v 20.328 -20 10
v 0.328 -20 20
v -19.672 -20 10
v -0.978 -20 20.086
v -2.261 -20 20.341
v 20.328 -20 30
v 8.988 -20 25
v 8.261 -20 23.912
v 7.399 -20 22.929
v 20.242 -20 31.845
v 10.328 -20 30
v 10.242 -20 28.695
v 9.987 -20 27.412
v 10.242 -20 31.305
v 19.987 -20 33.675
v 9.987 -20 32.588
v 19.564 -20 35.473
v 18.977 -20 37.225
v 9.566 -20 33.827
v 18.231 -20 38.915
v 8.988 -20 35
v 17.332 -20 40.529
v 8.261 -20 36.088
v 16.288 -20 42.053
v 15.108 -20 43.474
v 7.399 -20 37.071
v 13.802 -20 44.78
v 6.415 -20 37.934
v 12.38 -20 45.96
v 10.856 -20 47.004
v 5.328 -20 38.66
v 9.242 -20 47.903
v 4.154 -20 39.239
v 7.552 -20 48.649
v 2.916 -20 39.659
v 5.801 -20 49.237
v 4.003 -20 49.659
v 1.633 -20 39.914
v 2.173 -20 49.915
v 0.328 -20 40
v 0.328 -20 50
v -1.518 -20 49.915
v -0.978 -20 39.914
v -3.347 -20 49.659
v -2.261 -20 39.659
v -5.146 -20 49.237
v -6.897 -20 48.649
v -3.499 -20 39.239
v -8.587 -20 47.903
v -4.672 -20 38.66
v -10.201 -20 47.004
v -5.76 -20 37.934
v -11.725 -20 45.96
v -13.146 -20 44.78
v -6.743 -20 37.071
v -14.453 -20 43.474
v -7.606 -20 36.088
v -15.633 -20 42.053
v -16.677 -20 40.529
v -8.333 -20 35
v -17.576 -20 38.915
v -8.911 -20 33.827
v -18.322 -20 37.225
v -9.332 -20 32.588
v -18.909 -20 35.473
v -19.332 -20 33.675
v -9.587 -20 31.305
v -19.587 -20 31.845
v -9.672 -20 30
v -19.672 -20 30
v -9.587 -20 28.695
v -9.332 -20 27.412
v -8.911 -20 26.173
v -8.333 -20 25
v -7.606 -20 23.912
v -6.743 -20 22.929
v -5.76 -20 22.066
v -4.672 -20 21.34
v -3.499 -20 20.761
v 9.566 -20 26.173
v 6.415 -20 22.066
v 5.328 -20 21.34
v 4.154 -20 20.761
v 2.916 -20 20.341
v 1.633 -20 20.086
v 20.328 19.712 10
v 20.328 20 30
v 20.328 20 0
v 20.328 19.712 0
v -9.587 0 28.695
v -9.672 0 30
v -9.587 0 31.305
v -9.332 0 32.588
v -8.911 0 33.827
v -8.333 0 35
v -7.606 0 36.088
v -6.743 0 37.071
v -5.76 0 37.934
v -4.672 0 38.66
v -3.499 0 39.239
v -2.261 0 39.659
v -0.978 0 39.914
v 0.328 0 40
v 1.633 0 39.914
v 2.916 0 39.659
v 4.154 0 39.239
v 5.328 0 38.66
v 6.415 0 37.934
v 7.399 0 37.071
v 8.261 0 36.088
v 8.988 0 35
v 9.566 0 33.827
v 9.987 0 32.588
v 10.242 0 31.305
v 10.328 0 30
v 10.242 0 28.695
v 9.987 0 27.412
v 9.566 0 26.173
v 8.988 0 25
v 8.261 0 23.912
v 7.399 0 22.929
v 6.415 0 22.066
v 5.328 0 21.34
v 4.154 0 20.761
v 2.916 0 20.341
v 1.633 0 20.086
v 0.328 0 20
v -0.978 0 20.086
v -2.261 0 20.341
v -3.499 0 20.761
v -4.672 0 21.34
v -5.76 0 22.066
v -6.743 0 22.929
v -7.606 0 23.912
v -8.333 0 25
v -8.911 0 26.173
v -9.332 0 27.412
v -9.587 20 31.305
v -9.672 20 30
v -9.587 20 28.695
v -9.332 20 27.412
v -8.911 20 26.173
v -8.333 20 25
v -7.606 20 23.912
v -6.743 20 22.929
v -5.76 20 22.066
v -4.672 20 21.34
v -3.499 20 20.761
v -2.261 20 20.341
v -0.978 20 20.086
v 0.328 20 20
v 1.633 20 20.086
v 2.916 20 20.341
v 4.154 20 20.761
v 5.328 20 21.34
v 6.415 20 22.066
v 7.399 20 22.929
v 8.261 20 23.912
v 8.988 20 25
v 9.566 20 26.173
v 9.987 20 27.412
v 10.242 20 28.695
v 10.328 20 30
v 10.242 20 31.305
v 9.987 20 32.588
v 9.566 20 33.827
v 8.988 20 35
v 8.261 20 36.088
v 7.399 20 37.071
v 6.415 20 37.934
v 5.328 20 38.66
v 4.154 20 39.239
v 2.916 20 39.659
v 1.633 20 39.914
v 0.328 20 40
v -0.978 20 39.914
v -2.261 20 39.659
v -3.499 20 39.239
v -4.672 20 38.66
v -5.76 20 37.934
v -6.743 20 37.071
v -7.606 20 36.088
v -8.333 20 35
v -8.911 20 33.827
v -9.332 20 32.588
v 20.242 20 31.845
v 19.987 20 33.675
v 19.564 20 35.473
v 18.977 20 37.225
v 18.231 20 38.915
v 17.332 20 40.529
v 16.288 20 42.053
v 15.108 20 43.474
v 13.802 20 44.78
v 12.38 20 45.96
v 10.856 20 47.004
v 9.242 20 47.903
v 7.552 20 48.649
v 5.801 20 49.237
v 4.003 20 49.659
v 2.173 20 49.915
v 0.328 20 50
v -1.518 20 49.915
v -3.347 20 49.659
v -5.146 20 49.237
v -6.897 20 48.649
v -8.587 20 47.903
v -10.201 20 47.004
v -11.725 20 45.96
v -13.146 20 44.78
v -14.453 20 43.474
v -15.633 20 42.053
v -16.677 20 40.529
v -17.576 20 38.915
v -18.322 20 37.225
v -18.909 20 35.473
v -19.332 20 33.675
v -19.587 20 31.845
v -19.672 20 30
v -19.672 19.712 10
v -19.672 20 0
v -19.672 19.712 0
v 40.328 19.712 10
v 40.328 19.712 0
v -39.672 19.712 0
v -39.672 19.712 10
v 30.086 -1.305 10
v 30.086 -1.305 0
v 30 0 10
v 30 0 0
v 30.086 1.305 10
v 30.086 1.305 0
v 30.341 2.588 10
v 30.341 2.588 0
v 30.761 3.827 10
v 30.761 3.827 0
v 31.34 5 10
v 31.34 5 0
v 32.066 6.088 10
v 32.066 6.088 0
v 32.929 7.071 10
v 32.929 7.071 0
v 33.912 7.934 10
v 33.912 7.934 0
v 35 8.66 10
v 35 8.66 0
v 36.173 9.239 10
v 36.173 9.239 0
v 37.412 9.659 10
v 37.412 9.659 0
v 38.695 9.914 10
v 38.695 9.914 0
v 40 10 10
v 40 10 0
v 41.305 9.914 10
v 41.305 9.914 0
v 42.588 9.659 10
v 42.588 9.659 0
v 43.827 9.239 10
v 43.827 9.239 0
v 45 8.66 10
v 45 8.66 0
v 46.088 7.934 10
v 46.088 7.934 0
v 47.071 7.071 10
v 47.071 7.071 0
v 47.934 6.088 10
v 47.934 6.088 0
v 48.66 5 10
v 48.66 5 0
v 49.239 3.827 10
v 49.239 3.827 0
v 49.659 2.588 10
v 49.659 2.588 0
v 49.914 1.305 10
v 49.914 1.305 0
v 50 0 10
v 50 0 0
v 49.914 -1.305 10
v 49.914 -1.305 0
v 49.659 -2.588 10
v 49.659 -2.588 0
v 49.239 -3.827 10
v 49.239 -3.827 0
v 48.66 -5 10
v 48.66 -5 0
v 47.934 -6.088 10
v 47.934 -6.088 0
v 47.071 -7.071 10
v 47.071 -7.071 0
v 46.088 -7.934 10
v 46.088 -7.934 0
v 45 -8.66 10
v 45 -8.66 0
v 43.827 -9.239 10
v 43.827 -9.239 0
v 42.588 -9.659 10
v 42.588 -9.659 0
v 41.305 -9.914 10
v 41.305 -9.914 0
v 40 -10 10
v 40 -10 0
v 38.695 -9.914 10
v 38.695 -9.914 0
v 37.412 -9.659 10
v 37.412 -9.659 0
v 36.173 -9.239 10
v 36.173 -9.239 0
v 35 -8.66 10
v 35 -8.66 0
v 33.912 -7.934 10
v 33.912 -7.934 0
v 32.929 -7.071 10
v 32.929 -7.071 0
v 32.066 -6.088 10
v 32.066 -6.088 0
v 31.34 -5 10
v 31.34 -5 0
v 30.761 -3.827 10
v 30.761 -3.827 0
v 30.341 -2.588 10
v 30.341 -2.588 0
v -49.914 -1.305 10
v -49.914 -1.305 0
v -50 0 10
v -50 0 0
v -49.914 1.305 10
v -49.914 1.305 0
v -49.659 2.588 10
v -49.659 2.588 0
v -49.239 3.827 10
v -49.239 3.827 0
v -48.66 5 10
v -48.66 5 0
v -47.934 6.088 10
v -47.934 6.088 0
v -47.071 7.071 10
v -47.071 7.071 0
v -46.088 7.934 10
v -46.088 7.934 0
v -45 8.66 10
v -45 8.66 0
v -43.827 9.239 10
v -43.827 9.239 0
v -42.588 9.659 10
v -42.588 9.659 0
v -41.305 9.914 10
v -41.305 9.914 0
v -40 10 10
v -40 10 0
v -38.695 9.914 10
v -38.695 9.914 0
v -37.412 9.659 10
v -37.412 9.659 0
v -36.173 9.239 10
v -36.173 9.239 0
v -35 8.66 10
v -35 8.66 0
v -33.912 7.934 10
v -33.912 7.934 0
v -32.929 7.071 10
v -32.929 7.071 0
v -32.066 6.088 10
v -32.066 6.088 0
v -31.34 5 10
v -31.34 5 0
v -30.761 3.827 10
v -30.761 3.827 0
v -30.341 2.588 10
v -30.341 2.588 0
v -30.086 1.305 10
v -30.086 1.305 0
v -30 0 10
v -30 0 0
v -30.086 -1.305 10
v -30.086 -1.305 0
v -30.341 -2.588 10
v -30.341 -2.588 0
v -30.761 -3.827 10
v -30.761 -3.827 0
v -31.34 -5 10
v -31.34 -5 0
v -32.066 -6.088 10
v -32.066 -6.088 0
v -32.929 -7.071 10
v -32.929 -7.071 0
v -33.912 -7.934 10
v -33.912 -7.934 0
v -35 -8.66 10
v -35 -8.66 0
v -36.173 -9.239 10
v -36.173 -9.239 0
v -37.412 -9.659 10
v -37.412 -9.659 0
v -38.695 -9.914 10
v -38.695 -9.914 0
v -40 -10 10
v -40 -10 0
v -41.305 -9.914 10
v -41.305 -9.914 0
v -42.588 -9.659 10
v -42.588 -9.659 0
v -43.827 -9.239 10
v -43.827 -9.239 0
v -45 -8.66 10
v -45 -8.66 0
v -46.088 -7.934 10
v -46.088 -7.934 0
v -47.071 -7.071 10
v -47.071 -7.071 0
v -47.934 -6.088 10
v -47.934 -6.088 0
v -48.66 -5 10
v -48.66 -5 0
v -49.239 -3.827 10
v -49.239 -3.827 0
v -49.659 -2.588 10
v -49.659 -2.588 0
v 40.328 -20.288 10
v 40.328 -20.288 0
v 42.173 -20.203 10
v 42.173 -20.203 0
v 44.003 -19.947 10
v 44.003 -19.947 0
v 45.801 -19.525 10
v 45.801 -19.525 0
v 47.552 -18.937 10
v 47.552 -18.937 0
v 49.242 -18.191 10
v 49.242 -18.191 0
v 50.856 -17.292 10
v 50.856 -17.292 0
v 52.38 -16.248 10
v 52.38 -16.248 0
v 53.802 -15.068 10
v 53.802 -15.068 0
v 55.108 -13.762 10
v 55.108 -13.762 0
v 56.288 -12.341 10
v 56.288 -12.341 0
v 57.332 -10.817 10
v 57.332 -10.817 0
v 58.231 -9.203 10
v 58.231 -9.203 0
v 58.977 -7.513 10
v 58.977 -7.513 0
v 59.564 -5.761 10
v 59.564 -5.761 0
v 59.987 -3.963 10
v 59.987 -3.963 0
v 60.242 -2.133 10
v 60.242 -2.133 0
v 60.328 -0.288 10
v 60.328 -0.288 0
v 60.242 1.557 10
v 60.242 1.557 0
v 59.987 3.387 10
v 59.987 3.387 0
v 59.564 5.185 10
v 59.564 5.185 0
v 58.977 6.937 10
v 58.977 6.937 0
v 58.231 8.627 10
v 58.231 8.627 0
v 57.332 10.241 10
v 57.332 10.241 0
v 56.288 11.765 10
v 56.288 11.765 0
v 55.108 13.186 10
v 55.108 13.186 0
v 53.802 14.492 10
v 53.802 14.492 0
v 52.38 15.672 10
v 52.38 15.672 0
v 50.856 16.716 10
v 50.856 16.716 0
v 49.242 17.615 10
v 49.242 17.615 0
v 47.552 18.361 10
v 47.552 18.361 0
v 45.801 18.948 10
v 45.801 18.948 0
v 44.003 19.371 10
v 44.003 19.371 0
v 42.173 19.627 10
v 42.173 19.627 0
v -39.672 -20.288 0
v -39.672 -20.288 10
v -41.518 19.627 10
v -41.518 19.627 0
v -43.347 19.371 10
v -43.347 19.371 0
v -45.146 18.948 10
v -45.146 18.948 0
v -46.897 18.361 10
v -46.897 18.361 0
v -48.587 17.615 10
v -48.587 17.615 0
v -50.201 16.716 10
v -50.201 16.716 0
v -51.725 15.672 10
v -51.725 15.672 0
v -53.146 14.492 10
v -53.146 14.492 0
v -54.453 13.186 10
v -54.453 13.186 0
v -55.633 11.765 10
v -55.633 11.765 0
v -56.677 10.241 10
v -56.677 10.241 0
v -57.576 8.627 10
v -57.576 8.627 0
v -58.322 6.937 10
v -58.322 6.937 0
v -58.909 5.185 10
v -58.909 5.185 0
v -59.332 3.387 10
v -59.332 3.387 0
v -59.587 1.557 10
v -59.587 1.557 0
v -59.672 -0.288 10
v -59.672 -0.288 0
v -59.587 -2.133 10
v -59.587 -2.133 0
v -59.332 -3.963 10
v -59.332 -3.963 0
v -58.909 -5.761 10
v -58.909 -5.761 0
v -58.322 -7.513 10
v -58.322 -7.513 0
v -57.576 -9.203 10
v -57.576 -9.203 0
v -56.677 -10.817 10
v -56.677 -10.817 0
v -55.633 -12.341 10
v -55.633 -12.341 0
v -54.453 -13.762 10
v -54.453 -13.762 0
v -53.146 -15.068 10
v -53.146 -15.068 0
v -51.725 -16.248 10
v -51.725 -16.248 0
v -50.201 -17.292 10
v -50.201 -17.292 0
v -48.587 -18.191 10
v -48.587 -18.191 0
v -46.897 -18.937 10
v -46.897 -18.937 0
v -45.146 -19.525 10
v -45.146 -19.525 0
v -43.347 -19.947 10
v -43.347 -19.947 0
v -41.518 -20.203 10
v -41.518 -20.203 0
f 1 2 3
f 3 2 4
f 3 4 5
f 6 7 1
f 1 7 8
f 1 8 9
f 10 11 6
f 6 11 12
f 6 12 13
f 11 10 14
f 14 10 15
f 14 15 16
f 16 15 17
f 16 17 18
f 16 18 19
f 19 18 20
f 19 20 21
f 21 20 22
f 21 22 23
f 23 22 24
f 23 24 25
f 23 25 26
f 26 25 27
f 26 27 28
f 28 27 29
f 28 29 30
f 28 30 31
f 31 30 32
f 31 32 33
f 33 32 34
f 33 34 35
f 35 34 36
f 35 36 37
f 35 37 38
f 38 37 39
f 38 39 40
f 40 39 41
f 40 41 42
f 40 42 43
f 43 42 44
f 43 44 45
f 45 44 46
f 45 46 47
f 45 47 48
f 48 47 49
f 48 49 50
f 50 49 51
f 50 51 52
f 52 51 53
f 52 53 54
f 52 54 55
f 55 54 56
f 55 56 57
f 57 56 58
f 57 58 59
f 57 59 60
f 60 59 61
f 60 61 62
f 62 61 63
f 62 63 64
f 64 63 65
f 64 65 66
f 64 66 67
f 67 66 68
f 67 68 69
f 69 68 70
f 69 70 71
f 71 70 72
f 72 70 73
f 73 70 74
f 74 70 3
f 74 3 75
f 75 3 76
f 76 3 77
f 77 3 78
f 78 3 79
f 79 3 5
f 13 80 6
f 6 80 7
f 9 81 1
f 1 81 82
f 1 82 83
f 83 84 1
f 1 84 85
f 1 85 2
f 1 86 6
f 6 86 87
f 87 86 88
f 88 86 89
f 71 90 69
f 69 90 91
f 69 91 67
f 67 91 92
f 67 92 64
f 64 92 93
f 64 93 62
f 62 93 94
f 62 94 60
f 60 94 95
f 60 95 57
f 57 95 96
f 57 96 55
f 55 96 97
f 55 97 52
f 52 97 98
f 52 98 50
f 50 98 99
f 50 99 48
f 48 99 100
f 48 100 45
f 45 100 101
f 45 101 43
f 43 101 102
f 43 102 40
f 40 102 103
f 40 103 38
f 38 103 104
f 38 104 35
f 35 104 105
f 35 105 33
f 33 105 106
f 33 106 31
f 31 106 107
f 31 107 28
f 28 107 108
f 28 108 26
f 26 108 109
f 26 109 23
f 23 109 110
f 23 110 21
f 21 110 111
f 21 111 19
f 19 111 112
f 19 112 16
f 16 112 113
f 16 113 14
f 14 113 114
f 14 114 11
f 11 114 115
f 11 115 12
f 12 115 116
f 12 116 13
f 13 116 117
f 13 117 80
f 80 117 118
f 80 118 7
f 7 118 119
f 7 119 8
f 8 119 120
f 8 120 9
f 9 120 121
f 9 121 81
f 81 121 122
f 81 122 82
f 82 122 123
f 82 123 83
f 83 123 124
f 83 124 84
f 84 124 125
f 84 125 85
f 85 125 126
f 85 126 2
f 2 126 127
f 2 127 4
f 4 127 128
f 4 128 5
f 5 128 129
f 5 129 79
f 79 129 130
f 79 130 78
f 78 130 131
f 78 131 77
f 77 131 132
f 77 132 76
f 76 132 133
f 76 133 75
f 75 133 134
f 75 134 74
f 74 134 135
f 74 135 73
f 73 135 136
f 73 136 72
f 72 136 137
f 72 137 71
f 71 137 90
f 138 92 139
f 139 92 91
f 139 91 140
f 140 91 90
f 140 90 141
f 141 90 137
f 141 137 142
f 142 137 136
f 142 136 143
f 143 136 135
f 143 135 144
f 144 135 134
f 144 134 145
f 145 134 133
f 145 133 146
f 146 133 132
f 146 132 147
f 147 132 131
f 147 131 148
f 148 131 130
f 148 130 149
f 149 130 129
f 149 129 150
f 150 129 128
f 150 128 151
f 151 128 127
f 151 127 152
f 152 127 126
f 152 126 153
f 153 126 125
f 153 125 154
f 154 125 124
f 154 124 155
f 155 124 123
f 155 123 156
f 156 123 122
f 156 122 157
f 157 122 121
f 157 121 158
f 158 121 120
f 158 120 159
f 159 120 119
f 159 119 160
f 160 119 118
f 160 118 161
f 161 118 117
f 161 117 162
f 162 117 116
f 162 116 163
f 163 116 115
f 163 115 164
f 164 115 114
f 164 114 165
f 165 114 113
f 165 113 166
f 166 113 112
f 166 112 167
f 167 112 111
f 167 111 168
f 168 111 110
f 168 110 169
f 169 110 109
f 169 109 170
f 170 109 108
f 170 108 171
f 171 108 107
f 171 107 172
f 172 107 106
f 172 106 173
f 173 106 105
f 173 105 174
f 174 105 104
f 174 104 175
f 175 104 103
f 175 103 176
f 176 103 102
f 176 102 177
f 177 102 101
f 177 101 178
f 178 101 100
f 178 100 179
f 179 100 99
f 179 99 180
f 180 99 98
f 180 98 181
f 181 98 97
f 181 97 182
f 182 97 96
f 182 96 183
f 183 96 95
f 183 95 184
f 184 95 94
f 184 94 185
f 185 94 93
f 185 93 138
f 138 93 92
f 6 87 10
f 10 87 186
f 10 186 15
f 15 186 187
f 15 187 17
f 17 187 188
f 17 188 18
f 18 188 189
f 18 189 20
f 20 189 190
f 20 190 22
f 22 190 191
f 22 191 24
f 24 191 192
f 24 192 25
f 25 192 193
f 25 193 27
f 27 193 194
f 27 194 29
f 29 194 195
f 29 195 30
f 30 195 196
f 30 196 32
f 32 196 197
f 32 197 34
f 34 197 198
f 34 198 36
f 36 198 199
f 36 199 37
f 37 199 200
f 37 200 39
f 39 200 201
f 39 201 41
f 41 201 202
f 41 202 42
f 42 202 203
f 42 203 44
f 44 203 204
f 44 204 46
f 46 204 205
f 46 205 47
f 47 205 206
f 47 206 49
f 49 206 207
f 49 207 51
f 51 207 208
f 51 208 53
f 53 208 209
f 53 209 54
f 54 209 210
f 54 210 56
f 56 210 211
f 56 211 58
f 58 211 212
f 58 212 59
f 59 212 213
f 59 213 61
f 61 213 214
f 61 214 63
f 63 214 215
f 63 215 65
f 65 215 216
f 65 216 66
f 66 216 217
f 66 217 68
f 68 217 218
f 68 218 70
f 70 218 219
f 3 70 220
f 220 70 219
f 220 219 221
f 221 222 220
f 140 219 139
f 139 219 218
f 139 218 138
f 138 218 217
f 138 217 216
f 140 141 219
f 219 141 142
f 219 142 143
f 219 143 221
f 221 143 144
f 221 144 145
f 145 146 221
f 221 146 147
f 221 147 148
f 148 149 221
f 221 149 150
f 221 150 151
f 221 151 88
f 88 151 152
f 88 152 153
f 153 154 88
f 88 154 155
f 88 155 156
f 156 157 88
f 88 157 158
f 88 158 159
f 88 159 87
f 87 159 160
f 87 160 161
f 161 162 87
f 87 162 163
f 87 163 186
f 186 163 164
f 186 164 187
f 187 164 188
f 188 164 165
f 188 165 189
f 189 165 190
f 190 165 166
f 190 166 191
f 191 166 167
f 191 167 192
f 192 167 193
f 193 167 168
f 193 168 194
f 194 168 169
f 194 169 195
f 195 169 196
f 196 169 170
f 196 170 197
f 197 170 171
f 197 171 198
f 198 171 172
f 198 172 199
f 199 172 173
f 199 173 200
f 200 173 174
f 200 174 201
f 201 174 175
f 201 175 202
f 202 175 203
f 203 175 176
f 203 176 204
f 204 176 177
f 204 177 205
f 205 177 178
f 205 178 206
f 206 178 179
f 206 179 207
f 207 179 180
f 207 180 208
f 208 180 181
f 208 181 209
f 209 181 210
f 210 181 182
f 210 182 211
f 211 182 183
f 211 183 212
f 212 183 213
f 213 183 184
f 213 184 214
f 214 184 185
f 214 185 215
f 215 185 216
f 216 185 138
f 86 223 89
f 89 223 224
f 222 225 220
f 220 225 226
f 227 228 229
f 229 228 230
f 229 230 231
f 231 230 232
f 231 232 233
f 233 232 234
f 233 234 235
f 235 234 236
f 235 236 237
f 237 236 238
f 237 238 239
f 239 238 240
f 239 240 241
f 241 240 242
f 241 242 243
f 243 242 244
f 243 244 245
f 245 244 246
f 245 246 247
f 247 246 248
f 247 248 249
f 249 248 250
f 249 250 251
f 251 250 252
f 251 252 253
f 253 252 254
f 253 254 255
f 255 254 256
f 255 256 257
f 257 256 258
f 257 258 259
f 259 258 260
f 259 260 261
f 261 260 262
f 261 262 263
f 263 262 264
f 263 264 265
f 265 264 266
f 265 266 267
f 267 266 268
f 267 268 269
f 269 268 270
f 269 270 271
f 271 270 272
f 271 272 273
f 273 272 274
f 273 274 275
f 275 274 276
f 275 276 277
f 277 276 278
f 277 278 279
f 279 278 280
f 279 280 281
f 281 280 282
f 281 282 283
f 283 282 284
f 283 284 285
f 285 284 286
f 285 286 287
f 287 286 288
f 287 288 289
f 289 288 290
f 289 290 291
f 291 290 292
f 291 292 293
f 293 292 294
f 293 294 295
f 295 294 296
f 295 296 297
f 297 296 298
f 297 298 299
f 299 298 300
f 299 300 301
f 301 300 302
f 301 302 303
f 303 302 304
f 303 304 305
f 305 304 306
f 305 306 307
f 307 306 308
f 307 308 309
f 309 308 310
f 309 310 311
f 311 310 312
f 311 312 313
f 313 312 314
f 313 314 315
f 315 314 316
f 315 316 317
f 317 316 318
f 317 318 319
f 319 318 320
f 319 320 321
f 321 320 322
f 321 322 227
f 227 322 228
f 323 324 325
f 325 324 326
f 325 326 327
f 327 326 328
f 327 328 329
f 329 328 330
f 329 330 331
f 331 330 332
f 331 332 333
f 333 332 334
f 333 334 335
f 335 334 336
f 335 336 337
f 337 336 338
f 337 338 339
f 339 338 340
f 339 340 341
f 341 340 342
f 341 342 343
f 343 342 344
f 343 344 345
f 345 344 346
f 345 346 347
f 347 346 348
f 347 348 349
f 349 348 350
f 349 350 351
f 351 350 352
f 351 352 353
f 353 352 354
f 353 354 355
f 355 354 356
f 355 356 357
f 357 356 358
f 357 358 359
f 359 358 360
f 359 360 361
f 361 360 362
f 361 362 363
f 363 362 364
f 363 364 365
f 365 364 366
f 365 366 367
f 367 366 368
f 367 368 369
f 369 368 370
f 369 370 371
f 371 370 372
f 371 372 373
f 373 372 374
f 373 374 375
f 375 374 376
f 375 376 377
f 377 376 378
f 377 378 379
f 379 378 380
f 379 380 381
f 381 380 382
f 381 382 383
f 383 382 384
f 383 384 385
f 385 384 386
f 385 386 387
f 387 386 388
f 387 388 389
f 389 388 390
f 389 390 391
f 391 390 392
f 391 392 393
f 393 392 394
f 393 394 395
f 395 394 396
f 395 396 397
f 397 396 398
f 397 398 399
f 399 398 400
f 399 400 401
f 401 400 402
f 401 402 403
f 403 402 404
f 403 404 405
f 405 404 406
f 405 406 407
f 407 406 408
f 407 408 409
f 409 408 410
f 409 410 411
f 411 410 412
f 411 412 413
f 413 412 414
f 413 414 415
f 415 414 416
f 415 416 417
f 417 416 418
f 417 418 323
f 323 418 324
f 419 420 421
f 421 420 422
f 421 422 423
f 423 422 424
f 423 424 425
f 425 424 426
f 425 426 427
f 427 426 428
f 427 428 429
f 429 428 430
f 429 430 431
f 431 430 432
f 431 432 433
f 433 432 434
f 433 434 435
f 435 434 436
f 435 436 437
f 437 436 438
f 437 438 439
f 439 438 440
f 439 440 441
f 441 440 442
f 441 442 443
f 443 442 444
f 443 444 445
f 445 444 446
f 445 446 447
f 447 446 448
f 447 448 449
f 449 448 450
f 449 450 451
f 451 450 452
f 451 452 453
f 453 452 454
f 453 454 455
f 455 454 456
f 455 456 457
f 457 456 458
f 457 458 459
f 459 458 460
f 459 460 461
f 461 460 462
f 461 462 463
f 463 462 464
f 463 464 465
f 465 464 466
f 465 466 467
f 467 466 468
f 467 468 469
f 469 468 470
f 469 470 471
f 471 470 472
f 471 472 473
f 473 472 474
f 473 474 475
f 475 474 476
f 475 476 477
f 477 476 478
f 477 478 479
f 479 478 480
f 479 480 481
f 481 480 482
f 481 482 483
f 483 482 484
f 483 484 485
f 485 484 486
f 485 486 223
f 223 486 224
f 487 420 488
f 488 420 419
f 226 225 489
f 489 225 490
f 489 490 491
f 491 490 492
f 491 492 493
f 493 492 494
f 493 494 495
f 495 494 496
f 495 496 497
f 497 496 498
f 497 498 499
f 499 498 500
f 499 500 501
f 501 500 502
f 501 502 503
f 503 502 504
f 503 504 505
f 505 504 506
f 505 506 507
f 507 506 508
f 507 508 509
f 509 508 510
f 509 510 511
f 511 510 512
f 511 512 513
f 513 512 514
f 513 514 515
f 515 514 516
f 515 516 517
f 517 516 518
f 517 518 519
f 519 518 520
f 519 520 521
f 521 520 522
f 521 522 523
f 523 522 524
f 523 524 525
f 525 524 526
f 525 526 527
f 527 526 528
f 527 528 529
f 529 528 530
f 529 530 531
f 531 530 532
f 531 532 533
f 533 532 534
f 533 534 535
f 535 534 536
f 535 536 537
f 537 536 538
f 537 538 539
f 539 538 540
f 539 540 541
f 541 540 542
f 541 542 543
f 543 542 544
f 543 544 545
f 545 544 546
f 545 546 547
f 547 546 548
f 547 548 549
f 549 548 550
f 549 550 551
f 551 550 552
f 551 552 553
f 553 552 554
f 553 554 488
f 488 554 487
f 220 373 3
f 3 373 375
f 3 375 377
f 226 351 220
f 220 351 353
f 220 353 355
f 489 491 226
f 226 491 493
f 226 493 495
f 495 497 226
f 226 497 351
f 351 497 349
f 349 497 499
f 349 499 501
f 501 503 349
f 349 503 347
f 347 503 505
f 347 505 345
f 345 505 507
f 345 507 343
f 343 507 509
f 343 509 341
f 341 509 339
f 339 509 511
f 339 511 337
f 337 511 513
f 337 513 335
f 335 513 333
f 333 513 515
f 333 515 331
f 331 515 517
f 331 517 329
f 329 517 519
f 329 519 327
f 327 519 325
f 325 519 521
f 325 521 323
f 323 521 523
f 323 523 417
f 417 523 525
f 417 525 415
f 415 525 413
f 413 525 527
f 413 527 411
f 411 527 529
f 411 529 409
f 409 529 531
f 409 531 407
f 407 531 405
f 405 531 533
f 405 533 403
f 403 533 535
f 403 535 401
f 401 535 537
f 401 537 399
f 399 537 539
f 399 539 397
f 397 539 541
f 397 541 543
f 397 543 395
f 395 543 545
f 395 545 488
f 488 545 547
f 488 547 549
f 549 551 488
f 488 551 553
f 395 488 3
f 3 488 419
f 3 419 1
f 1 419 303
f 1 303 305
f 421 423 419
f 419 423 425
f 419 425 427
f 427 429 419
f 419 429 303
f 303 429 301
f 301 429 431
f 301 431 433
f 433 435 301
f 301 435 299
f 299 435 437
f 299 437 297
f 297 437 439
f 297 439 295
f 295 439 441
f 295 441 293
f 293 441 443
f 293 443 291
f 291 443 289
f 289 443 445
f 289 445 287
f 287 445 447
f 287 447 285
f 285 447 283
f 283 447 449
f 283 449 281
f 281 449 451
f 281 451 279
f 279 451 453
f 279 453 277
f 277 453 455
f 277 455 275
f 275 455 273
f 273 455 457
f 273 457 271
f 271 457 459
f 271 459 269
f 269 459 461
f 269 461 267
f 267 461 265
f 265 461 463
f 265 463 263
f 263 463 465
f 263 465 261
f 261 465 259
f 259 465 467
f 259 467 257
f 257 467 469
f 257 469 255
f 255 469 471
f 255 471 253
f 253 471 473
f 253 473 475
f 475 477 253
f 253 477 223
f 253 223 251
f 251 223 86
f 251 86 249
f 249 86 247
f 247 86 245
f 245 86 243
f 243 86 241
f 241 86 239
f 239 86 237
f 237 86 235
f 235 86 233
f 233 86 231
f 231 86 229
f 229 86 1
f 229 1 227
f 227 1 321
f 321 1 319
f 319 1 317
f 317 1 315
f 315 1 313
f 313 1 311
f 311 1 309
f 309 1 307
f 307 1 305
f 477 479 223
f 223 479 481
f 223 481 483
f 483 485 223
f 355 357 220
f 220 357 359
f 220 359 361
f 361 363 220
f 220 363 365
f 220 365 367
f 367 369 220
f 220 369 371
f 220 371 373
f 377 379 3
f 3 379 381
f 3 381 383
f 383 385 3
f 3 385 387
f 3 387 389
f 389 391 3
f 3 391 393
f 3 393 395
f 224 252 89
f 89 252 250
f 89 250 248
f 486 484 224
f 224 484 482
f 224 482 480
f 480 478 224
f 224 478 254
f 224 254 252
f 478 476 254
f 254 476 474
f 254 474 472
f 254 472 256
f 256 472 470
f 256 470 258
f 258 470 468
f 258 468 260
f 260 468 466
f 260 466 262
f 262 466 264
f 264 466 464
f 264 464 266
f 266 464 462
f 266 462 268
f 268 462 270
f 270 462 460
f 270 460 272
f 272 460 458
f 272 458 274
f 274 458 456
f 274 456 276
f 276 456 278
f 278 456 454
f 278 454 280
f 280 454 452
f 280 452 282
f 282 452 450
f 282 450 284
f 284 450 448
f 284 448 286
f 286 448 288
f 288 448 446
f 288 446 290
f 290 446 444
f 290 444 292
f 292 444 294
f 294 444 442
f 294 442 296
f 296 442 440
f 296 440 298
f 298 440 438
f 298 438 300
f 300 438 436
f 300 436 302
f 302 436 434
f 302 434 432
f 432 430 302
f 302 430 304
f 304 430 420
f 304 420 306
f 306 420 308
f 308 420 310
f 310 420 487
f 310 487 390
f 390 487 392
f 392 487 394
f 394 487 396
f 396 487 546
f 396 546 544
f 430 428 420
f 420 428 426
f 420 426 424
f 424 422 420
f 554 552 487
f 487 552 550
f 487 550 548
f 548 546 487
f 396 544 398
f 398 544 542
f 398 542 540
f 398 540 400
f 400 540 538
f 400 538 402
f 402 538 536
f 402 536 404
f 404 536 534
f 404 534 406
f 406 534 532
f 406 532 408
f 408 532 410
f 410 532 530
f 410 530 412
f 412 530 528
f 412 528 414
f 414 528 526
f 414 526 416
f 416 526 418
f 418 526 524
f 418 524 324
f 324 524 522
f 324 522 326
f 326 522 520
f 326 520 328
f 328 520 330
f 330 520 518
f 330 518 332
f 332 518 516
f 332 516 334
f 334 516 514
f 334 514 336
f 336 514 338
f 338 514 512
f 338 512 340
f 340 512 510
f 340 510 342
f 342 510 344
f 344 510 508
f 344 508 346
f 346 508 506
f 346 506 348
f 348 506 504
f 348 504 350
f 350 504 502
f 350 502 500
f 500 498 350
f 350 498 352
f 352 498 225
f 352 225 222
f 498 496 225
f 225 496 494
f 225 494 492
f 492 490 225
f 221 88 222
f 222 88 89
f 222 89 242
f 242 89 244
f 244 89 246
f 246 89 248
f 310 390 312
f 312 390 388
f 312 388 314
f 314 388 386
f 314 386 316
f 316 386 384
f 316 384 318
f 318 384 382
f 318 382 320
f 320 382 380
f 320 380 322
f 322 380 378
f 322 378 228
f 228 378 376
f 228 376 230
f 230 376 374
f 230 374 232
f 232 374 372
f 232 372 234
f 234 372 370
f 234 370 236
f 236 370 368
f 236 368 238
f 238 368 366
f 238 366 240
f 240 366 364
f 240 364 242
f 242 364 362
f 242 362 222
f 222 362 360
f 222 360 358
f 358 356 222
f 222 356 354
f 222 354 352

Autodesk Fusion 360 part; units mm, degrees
sketch "Sketch1" plane through (0, 0, 0) normal (0, 0, 1) x (1, 0, 0)
  line L0 (40.3277, 19.712) -> (-39.6723, 19.712)
  line L1 (-39.6723, 19.712) -> (-39.6723, -20.288)
  line L2 (-39.6723, -20.288) -> (40.3277, -20.288)
  line L3 (40.3277, -20.288) -> (40.3277, 19.712)
  line L4 (-39.6723, -0.288) -> (40.3277, -0.288) construction
  circle A0 centre (40, 0) radius 10
  circle A1 centre (-40, 0) radius 10
  line L5 (-24, 12) -> (-20, 10) construction
  line L6 (24, 12) -> (20, 10) construction
  arc A2 (40.3277, -20.288) -> (40.3277, 19.712) centre (40.3277, -0.288) ccw
  arc A3 (-39.6723, 19.712) -> (-39.6723, -20.288) centre (-39.6723, -0.288) ccw
  dimension "d1" = 80
  dimension "d2" = 40
  dimension "d6" = 40
  dimension "d7" = 40
sketch "Sketch2" plane through (0, 0, 0) normal (0, 0, 1) x (1, 0, 0)
sketch "Sketch3" plane through (0, 0, 0) normal (0, 0, 1) x (1, 0, 0)
extrude "Extrude1" add sketch "Sketch1" along normal blind 10 contours L0 L1 L2 L3 A0 A1 | L3 A0 A2 | L1 A1 A3
sketch "Sketch4" plane through (0, 0, 0) normal (0, 1, 0) x (1, 0, 0)
  line L0 (-19.6723, 0) -> (20.3277, 0)
  line L1 (20.3277, 0) -> (20.3277, -30)
  line L2 (-19.6723, -30) -> (-19.6723, 0)
  line L3 (-39.6723, 0) -> (-39.6723, -10)
  circle A0 centre (0.3277, -30) radius 10
  arc A1 (-19.6723, -30) -> (20.3277, -30) centre (0.3277, -30) ccw
  dimension "d12" = 30
  dimension "d13" = 40
  dimension "d14" = 20
  dimension "d15" = 40
  dimension "d16" = 20
extrude "Extrude2" add sketch "Sketch4" along normal mid plane 40
